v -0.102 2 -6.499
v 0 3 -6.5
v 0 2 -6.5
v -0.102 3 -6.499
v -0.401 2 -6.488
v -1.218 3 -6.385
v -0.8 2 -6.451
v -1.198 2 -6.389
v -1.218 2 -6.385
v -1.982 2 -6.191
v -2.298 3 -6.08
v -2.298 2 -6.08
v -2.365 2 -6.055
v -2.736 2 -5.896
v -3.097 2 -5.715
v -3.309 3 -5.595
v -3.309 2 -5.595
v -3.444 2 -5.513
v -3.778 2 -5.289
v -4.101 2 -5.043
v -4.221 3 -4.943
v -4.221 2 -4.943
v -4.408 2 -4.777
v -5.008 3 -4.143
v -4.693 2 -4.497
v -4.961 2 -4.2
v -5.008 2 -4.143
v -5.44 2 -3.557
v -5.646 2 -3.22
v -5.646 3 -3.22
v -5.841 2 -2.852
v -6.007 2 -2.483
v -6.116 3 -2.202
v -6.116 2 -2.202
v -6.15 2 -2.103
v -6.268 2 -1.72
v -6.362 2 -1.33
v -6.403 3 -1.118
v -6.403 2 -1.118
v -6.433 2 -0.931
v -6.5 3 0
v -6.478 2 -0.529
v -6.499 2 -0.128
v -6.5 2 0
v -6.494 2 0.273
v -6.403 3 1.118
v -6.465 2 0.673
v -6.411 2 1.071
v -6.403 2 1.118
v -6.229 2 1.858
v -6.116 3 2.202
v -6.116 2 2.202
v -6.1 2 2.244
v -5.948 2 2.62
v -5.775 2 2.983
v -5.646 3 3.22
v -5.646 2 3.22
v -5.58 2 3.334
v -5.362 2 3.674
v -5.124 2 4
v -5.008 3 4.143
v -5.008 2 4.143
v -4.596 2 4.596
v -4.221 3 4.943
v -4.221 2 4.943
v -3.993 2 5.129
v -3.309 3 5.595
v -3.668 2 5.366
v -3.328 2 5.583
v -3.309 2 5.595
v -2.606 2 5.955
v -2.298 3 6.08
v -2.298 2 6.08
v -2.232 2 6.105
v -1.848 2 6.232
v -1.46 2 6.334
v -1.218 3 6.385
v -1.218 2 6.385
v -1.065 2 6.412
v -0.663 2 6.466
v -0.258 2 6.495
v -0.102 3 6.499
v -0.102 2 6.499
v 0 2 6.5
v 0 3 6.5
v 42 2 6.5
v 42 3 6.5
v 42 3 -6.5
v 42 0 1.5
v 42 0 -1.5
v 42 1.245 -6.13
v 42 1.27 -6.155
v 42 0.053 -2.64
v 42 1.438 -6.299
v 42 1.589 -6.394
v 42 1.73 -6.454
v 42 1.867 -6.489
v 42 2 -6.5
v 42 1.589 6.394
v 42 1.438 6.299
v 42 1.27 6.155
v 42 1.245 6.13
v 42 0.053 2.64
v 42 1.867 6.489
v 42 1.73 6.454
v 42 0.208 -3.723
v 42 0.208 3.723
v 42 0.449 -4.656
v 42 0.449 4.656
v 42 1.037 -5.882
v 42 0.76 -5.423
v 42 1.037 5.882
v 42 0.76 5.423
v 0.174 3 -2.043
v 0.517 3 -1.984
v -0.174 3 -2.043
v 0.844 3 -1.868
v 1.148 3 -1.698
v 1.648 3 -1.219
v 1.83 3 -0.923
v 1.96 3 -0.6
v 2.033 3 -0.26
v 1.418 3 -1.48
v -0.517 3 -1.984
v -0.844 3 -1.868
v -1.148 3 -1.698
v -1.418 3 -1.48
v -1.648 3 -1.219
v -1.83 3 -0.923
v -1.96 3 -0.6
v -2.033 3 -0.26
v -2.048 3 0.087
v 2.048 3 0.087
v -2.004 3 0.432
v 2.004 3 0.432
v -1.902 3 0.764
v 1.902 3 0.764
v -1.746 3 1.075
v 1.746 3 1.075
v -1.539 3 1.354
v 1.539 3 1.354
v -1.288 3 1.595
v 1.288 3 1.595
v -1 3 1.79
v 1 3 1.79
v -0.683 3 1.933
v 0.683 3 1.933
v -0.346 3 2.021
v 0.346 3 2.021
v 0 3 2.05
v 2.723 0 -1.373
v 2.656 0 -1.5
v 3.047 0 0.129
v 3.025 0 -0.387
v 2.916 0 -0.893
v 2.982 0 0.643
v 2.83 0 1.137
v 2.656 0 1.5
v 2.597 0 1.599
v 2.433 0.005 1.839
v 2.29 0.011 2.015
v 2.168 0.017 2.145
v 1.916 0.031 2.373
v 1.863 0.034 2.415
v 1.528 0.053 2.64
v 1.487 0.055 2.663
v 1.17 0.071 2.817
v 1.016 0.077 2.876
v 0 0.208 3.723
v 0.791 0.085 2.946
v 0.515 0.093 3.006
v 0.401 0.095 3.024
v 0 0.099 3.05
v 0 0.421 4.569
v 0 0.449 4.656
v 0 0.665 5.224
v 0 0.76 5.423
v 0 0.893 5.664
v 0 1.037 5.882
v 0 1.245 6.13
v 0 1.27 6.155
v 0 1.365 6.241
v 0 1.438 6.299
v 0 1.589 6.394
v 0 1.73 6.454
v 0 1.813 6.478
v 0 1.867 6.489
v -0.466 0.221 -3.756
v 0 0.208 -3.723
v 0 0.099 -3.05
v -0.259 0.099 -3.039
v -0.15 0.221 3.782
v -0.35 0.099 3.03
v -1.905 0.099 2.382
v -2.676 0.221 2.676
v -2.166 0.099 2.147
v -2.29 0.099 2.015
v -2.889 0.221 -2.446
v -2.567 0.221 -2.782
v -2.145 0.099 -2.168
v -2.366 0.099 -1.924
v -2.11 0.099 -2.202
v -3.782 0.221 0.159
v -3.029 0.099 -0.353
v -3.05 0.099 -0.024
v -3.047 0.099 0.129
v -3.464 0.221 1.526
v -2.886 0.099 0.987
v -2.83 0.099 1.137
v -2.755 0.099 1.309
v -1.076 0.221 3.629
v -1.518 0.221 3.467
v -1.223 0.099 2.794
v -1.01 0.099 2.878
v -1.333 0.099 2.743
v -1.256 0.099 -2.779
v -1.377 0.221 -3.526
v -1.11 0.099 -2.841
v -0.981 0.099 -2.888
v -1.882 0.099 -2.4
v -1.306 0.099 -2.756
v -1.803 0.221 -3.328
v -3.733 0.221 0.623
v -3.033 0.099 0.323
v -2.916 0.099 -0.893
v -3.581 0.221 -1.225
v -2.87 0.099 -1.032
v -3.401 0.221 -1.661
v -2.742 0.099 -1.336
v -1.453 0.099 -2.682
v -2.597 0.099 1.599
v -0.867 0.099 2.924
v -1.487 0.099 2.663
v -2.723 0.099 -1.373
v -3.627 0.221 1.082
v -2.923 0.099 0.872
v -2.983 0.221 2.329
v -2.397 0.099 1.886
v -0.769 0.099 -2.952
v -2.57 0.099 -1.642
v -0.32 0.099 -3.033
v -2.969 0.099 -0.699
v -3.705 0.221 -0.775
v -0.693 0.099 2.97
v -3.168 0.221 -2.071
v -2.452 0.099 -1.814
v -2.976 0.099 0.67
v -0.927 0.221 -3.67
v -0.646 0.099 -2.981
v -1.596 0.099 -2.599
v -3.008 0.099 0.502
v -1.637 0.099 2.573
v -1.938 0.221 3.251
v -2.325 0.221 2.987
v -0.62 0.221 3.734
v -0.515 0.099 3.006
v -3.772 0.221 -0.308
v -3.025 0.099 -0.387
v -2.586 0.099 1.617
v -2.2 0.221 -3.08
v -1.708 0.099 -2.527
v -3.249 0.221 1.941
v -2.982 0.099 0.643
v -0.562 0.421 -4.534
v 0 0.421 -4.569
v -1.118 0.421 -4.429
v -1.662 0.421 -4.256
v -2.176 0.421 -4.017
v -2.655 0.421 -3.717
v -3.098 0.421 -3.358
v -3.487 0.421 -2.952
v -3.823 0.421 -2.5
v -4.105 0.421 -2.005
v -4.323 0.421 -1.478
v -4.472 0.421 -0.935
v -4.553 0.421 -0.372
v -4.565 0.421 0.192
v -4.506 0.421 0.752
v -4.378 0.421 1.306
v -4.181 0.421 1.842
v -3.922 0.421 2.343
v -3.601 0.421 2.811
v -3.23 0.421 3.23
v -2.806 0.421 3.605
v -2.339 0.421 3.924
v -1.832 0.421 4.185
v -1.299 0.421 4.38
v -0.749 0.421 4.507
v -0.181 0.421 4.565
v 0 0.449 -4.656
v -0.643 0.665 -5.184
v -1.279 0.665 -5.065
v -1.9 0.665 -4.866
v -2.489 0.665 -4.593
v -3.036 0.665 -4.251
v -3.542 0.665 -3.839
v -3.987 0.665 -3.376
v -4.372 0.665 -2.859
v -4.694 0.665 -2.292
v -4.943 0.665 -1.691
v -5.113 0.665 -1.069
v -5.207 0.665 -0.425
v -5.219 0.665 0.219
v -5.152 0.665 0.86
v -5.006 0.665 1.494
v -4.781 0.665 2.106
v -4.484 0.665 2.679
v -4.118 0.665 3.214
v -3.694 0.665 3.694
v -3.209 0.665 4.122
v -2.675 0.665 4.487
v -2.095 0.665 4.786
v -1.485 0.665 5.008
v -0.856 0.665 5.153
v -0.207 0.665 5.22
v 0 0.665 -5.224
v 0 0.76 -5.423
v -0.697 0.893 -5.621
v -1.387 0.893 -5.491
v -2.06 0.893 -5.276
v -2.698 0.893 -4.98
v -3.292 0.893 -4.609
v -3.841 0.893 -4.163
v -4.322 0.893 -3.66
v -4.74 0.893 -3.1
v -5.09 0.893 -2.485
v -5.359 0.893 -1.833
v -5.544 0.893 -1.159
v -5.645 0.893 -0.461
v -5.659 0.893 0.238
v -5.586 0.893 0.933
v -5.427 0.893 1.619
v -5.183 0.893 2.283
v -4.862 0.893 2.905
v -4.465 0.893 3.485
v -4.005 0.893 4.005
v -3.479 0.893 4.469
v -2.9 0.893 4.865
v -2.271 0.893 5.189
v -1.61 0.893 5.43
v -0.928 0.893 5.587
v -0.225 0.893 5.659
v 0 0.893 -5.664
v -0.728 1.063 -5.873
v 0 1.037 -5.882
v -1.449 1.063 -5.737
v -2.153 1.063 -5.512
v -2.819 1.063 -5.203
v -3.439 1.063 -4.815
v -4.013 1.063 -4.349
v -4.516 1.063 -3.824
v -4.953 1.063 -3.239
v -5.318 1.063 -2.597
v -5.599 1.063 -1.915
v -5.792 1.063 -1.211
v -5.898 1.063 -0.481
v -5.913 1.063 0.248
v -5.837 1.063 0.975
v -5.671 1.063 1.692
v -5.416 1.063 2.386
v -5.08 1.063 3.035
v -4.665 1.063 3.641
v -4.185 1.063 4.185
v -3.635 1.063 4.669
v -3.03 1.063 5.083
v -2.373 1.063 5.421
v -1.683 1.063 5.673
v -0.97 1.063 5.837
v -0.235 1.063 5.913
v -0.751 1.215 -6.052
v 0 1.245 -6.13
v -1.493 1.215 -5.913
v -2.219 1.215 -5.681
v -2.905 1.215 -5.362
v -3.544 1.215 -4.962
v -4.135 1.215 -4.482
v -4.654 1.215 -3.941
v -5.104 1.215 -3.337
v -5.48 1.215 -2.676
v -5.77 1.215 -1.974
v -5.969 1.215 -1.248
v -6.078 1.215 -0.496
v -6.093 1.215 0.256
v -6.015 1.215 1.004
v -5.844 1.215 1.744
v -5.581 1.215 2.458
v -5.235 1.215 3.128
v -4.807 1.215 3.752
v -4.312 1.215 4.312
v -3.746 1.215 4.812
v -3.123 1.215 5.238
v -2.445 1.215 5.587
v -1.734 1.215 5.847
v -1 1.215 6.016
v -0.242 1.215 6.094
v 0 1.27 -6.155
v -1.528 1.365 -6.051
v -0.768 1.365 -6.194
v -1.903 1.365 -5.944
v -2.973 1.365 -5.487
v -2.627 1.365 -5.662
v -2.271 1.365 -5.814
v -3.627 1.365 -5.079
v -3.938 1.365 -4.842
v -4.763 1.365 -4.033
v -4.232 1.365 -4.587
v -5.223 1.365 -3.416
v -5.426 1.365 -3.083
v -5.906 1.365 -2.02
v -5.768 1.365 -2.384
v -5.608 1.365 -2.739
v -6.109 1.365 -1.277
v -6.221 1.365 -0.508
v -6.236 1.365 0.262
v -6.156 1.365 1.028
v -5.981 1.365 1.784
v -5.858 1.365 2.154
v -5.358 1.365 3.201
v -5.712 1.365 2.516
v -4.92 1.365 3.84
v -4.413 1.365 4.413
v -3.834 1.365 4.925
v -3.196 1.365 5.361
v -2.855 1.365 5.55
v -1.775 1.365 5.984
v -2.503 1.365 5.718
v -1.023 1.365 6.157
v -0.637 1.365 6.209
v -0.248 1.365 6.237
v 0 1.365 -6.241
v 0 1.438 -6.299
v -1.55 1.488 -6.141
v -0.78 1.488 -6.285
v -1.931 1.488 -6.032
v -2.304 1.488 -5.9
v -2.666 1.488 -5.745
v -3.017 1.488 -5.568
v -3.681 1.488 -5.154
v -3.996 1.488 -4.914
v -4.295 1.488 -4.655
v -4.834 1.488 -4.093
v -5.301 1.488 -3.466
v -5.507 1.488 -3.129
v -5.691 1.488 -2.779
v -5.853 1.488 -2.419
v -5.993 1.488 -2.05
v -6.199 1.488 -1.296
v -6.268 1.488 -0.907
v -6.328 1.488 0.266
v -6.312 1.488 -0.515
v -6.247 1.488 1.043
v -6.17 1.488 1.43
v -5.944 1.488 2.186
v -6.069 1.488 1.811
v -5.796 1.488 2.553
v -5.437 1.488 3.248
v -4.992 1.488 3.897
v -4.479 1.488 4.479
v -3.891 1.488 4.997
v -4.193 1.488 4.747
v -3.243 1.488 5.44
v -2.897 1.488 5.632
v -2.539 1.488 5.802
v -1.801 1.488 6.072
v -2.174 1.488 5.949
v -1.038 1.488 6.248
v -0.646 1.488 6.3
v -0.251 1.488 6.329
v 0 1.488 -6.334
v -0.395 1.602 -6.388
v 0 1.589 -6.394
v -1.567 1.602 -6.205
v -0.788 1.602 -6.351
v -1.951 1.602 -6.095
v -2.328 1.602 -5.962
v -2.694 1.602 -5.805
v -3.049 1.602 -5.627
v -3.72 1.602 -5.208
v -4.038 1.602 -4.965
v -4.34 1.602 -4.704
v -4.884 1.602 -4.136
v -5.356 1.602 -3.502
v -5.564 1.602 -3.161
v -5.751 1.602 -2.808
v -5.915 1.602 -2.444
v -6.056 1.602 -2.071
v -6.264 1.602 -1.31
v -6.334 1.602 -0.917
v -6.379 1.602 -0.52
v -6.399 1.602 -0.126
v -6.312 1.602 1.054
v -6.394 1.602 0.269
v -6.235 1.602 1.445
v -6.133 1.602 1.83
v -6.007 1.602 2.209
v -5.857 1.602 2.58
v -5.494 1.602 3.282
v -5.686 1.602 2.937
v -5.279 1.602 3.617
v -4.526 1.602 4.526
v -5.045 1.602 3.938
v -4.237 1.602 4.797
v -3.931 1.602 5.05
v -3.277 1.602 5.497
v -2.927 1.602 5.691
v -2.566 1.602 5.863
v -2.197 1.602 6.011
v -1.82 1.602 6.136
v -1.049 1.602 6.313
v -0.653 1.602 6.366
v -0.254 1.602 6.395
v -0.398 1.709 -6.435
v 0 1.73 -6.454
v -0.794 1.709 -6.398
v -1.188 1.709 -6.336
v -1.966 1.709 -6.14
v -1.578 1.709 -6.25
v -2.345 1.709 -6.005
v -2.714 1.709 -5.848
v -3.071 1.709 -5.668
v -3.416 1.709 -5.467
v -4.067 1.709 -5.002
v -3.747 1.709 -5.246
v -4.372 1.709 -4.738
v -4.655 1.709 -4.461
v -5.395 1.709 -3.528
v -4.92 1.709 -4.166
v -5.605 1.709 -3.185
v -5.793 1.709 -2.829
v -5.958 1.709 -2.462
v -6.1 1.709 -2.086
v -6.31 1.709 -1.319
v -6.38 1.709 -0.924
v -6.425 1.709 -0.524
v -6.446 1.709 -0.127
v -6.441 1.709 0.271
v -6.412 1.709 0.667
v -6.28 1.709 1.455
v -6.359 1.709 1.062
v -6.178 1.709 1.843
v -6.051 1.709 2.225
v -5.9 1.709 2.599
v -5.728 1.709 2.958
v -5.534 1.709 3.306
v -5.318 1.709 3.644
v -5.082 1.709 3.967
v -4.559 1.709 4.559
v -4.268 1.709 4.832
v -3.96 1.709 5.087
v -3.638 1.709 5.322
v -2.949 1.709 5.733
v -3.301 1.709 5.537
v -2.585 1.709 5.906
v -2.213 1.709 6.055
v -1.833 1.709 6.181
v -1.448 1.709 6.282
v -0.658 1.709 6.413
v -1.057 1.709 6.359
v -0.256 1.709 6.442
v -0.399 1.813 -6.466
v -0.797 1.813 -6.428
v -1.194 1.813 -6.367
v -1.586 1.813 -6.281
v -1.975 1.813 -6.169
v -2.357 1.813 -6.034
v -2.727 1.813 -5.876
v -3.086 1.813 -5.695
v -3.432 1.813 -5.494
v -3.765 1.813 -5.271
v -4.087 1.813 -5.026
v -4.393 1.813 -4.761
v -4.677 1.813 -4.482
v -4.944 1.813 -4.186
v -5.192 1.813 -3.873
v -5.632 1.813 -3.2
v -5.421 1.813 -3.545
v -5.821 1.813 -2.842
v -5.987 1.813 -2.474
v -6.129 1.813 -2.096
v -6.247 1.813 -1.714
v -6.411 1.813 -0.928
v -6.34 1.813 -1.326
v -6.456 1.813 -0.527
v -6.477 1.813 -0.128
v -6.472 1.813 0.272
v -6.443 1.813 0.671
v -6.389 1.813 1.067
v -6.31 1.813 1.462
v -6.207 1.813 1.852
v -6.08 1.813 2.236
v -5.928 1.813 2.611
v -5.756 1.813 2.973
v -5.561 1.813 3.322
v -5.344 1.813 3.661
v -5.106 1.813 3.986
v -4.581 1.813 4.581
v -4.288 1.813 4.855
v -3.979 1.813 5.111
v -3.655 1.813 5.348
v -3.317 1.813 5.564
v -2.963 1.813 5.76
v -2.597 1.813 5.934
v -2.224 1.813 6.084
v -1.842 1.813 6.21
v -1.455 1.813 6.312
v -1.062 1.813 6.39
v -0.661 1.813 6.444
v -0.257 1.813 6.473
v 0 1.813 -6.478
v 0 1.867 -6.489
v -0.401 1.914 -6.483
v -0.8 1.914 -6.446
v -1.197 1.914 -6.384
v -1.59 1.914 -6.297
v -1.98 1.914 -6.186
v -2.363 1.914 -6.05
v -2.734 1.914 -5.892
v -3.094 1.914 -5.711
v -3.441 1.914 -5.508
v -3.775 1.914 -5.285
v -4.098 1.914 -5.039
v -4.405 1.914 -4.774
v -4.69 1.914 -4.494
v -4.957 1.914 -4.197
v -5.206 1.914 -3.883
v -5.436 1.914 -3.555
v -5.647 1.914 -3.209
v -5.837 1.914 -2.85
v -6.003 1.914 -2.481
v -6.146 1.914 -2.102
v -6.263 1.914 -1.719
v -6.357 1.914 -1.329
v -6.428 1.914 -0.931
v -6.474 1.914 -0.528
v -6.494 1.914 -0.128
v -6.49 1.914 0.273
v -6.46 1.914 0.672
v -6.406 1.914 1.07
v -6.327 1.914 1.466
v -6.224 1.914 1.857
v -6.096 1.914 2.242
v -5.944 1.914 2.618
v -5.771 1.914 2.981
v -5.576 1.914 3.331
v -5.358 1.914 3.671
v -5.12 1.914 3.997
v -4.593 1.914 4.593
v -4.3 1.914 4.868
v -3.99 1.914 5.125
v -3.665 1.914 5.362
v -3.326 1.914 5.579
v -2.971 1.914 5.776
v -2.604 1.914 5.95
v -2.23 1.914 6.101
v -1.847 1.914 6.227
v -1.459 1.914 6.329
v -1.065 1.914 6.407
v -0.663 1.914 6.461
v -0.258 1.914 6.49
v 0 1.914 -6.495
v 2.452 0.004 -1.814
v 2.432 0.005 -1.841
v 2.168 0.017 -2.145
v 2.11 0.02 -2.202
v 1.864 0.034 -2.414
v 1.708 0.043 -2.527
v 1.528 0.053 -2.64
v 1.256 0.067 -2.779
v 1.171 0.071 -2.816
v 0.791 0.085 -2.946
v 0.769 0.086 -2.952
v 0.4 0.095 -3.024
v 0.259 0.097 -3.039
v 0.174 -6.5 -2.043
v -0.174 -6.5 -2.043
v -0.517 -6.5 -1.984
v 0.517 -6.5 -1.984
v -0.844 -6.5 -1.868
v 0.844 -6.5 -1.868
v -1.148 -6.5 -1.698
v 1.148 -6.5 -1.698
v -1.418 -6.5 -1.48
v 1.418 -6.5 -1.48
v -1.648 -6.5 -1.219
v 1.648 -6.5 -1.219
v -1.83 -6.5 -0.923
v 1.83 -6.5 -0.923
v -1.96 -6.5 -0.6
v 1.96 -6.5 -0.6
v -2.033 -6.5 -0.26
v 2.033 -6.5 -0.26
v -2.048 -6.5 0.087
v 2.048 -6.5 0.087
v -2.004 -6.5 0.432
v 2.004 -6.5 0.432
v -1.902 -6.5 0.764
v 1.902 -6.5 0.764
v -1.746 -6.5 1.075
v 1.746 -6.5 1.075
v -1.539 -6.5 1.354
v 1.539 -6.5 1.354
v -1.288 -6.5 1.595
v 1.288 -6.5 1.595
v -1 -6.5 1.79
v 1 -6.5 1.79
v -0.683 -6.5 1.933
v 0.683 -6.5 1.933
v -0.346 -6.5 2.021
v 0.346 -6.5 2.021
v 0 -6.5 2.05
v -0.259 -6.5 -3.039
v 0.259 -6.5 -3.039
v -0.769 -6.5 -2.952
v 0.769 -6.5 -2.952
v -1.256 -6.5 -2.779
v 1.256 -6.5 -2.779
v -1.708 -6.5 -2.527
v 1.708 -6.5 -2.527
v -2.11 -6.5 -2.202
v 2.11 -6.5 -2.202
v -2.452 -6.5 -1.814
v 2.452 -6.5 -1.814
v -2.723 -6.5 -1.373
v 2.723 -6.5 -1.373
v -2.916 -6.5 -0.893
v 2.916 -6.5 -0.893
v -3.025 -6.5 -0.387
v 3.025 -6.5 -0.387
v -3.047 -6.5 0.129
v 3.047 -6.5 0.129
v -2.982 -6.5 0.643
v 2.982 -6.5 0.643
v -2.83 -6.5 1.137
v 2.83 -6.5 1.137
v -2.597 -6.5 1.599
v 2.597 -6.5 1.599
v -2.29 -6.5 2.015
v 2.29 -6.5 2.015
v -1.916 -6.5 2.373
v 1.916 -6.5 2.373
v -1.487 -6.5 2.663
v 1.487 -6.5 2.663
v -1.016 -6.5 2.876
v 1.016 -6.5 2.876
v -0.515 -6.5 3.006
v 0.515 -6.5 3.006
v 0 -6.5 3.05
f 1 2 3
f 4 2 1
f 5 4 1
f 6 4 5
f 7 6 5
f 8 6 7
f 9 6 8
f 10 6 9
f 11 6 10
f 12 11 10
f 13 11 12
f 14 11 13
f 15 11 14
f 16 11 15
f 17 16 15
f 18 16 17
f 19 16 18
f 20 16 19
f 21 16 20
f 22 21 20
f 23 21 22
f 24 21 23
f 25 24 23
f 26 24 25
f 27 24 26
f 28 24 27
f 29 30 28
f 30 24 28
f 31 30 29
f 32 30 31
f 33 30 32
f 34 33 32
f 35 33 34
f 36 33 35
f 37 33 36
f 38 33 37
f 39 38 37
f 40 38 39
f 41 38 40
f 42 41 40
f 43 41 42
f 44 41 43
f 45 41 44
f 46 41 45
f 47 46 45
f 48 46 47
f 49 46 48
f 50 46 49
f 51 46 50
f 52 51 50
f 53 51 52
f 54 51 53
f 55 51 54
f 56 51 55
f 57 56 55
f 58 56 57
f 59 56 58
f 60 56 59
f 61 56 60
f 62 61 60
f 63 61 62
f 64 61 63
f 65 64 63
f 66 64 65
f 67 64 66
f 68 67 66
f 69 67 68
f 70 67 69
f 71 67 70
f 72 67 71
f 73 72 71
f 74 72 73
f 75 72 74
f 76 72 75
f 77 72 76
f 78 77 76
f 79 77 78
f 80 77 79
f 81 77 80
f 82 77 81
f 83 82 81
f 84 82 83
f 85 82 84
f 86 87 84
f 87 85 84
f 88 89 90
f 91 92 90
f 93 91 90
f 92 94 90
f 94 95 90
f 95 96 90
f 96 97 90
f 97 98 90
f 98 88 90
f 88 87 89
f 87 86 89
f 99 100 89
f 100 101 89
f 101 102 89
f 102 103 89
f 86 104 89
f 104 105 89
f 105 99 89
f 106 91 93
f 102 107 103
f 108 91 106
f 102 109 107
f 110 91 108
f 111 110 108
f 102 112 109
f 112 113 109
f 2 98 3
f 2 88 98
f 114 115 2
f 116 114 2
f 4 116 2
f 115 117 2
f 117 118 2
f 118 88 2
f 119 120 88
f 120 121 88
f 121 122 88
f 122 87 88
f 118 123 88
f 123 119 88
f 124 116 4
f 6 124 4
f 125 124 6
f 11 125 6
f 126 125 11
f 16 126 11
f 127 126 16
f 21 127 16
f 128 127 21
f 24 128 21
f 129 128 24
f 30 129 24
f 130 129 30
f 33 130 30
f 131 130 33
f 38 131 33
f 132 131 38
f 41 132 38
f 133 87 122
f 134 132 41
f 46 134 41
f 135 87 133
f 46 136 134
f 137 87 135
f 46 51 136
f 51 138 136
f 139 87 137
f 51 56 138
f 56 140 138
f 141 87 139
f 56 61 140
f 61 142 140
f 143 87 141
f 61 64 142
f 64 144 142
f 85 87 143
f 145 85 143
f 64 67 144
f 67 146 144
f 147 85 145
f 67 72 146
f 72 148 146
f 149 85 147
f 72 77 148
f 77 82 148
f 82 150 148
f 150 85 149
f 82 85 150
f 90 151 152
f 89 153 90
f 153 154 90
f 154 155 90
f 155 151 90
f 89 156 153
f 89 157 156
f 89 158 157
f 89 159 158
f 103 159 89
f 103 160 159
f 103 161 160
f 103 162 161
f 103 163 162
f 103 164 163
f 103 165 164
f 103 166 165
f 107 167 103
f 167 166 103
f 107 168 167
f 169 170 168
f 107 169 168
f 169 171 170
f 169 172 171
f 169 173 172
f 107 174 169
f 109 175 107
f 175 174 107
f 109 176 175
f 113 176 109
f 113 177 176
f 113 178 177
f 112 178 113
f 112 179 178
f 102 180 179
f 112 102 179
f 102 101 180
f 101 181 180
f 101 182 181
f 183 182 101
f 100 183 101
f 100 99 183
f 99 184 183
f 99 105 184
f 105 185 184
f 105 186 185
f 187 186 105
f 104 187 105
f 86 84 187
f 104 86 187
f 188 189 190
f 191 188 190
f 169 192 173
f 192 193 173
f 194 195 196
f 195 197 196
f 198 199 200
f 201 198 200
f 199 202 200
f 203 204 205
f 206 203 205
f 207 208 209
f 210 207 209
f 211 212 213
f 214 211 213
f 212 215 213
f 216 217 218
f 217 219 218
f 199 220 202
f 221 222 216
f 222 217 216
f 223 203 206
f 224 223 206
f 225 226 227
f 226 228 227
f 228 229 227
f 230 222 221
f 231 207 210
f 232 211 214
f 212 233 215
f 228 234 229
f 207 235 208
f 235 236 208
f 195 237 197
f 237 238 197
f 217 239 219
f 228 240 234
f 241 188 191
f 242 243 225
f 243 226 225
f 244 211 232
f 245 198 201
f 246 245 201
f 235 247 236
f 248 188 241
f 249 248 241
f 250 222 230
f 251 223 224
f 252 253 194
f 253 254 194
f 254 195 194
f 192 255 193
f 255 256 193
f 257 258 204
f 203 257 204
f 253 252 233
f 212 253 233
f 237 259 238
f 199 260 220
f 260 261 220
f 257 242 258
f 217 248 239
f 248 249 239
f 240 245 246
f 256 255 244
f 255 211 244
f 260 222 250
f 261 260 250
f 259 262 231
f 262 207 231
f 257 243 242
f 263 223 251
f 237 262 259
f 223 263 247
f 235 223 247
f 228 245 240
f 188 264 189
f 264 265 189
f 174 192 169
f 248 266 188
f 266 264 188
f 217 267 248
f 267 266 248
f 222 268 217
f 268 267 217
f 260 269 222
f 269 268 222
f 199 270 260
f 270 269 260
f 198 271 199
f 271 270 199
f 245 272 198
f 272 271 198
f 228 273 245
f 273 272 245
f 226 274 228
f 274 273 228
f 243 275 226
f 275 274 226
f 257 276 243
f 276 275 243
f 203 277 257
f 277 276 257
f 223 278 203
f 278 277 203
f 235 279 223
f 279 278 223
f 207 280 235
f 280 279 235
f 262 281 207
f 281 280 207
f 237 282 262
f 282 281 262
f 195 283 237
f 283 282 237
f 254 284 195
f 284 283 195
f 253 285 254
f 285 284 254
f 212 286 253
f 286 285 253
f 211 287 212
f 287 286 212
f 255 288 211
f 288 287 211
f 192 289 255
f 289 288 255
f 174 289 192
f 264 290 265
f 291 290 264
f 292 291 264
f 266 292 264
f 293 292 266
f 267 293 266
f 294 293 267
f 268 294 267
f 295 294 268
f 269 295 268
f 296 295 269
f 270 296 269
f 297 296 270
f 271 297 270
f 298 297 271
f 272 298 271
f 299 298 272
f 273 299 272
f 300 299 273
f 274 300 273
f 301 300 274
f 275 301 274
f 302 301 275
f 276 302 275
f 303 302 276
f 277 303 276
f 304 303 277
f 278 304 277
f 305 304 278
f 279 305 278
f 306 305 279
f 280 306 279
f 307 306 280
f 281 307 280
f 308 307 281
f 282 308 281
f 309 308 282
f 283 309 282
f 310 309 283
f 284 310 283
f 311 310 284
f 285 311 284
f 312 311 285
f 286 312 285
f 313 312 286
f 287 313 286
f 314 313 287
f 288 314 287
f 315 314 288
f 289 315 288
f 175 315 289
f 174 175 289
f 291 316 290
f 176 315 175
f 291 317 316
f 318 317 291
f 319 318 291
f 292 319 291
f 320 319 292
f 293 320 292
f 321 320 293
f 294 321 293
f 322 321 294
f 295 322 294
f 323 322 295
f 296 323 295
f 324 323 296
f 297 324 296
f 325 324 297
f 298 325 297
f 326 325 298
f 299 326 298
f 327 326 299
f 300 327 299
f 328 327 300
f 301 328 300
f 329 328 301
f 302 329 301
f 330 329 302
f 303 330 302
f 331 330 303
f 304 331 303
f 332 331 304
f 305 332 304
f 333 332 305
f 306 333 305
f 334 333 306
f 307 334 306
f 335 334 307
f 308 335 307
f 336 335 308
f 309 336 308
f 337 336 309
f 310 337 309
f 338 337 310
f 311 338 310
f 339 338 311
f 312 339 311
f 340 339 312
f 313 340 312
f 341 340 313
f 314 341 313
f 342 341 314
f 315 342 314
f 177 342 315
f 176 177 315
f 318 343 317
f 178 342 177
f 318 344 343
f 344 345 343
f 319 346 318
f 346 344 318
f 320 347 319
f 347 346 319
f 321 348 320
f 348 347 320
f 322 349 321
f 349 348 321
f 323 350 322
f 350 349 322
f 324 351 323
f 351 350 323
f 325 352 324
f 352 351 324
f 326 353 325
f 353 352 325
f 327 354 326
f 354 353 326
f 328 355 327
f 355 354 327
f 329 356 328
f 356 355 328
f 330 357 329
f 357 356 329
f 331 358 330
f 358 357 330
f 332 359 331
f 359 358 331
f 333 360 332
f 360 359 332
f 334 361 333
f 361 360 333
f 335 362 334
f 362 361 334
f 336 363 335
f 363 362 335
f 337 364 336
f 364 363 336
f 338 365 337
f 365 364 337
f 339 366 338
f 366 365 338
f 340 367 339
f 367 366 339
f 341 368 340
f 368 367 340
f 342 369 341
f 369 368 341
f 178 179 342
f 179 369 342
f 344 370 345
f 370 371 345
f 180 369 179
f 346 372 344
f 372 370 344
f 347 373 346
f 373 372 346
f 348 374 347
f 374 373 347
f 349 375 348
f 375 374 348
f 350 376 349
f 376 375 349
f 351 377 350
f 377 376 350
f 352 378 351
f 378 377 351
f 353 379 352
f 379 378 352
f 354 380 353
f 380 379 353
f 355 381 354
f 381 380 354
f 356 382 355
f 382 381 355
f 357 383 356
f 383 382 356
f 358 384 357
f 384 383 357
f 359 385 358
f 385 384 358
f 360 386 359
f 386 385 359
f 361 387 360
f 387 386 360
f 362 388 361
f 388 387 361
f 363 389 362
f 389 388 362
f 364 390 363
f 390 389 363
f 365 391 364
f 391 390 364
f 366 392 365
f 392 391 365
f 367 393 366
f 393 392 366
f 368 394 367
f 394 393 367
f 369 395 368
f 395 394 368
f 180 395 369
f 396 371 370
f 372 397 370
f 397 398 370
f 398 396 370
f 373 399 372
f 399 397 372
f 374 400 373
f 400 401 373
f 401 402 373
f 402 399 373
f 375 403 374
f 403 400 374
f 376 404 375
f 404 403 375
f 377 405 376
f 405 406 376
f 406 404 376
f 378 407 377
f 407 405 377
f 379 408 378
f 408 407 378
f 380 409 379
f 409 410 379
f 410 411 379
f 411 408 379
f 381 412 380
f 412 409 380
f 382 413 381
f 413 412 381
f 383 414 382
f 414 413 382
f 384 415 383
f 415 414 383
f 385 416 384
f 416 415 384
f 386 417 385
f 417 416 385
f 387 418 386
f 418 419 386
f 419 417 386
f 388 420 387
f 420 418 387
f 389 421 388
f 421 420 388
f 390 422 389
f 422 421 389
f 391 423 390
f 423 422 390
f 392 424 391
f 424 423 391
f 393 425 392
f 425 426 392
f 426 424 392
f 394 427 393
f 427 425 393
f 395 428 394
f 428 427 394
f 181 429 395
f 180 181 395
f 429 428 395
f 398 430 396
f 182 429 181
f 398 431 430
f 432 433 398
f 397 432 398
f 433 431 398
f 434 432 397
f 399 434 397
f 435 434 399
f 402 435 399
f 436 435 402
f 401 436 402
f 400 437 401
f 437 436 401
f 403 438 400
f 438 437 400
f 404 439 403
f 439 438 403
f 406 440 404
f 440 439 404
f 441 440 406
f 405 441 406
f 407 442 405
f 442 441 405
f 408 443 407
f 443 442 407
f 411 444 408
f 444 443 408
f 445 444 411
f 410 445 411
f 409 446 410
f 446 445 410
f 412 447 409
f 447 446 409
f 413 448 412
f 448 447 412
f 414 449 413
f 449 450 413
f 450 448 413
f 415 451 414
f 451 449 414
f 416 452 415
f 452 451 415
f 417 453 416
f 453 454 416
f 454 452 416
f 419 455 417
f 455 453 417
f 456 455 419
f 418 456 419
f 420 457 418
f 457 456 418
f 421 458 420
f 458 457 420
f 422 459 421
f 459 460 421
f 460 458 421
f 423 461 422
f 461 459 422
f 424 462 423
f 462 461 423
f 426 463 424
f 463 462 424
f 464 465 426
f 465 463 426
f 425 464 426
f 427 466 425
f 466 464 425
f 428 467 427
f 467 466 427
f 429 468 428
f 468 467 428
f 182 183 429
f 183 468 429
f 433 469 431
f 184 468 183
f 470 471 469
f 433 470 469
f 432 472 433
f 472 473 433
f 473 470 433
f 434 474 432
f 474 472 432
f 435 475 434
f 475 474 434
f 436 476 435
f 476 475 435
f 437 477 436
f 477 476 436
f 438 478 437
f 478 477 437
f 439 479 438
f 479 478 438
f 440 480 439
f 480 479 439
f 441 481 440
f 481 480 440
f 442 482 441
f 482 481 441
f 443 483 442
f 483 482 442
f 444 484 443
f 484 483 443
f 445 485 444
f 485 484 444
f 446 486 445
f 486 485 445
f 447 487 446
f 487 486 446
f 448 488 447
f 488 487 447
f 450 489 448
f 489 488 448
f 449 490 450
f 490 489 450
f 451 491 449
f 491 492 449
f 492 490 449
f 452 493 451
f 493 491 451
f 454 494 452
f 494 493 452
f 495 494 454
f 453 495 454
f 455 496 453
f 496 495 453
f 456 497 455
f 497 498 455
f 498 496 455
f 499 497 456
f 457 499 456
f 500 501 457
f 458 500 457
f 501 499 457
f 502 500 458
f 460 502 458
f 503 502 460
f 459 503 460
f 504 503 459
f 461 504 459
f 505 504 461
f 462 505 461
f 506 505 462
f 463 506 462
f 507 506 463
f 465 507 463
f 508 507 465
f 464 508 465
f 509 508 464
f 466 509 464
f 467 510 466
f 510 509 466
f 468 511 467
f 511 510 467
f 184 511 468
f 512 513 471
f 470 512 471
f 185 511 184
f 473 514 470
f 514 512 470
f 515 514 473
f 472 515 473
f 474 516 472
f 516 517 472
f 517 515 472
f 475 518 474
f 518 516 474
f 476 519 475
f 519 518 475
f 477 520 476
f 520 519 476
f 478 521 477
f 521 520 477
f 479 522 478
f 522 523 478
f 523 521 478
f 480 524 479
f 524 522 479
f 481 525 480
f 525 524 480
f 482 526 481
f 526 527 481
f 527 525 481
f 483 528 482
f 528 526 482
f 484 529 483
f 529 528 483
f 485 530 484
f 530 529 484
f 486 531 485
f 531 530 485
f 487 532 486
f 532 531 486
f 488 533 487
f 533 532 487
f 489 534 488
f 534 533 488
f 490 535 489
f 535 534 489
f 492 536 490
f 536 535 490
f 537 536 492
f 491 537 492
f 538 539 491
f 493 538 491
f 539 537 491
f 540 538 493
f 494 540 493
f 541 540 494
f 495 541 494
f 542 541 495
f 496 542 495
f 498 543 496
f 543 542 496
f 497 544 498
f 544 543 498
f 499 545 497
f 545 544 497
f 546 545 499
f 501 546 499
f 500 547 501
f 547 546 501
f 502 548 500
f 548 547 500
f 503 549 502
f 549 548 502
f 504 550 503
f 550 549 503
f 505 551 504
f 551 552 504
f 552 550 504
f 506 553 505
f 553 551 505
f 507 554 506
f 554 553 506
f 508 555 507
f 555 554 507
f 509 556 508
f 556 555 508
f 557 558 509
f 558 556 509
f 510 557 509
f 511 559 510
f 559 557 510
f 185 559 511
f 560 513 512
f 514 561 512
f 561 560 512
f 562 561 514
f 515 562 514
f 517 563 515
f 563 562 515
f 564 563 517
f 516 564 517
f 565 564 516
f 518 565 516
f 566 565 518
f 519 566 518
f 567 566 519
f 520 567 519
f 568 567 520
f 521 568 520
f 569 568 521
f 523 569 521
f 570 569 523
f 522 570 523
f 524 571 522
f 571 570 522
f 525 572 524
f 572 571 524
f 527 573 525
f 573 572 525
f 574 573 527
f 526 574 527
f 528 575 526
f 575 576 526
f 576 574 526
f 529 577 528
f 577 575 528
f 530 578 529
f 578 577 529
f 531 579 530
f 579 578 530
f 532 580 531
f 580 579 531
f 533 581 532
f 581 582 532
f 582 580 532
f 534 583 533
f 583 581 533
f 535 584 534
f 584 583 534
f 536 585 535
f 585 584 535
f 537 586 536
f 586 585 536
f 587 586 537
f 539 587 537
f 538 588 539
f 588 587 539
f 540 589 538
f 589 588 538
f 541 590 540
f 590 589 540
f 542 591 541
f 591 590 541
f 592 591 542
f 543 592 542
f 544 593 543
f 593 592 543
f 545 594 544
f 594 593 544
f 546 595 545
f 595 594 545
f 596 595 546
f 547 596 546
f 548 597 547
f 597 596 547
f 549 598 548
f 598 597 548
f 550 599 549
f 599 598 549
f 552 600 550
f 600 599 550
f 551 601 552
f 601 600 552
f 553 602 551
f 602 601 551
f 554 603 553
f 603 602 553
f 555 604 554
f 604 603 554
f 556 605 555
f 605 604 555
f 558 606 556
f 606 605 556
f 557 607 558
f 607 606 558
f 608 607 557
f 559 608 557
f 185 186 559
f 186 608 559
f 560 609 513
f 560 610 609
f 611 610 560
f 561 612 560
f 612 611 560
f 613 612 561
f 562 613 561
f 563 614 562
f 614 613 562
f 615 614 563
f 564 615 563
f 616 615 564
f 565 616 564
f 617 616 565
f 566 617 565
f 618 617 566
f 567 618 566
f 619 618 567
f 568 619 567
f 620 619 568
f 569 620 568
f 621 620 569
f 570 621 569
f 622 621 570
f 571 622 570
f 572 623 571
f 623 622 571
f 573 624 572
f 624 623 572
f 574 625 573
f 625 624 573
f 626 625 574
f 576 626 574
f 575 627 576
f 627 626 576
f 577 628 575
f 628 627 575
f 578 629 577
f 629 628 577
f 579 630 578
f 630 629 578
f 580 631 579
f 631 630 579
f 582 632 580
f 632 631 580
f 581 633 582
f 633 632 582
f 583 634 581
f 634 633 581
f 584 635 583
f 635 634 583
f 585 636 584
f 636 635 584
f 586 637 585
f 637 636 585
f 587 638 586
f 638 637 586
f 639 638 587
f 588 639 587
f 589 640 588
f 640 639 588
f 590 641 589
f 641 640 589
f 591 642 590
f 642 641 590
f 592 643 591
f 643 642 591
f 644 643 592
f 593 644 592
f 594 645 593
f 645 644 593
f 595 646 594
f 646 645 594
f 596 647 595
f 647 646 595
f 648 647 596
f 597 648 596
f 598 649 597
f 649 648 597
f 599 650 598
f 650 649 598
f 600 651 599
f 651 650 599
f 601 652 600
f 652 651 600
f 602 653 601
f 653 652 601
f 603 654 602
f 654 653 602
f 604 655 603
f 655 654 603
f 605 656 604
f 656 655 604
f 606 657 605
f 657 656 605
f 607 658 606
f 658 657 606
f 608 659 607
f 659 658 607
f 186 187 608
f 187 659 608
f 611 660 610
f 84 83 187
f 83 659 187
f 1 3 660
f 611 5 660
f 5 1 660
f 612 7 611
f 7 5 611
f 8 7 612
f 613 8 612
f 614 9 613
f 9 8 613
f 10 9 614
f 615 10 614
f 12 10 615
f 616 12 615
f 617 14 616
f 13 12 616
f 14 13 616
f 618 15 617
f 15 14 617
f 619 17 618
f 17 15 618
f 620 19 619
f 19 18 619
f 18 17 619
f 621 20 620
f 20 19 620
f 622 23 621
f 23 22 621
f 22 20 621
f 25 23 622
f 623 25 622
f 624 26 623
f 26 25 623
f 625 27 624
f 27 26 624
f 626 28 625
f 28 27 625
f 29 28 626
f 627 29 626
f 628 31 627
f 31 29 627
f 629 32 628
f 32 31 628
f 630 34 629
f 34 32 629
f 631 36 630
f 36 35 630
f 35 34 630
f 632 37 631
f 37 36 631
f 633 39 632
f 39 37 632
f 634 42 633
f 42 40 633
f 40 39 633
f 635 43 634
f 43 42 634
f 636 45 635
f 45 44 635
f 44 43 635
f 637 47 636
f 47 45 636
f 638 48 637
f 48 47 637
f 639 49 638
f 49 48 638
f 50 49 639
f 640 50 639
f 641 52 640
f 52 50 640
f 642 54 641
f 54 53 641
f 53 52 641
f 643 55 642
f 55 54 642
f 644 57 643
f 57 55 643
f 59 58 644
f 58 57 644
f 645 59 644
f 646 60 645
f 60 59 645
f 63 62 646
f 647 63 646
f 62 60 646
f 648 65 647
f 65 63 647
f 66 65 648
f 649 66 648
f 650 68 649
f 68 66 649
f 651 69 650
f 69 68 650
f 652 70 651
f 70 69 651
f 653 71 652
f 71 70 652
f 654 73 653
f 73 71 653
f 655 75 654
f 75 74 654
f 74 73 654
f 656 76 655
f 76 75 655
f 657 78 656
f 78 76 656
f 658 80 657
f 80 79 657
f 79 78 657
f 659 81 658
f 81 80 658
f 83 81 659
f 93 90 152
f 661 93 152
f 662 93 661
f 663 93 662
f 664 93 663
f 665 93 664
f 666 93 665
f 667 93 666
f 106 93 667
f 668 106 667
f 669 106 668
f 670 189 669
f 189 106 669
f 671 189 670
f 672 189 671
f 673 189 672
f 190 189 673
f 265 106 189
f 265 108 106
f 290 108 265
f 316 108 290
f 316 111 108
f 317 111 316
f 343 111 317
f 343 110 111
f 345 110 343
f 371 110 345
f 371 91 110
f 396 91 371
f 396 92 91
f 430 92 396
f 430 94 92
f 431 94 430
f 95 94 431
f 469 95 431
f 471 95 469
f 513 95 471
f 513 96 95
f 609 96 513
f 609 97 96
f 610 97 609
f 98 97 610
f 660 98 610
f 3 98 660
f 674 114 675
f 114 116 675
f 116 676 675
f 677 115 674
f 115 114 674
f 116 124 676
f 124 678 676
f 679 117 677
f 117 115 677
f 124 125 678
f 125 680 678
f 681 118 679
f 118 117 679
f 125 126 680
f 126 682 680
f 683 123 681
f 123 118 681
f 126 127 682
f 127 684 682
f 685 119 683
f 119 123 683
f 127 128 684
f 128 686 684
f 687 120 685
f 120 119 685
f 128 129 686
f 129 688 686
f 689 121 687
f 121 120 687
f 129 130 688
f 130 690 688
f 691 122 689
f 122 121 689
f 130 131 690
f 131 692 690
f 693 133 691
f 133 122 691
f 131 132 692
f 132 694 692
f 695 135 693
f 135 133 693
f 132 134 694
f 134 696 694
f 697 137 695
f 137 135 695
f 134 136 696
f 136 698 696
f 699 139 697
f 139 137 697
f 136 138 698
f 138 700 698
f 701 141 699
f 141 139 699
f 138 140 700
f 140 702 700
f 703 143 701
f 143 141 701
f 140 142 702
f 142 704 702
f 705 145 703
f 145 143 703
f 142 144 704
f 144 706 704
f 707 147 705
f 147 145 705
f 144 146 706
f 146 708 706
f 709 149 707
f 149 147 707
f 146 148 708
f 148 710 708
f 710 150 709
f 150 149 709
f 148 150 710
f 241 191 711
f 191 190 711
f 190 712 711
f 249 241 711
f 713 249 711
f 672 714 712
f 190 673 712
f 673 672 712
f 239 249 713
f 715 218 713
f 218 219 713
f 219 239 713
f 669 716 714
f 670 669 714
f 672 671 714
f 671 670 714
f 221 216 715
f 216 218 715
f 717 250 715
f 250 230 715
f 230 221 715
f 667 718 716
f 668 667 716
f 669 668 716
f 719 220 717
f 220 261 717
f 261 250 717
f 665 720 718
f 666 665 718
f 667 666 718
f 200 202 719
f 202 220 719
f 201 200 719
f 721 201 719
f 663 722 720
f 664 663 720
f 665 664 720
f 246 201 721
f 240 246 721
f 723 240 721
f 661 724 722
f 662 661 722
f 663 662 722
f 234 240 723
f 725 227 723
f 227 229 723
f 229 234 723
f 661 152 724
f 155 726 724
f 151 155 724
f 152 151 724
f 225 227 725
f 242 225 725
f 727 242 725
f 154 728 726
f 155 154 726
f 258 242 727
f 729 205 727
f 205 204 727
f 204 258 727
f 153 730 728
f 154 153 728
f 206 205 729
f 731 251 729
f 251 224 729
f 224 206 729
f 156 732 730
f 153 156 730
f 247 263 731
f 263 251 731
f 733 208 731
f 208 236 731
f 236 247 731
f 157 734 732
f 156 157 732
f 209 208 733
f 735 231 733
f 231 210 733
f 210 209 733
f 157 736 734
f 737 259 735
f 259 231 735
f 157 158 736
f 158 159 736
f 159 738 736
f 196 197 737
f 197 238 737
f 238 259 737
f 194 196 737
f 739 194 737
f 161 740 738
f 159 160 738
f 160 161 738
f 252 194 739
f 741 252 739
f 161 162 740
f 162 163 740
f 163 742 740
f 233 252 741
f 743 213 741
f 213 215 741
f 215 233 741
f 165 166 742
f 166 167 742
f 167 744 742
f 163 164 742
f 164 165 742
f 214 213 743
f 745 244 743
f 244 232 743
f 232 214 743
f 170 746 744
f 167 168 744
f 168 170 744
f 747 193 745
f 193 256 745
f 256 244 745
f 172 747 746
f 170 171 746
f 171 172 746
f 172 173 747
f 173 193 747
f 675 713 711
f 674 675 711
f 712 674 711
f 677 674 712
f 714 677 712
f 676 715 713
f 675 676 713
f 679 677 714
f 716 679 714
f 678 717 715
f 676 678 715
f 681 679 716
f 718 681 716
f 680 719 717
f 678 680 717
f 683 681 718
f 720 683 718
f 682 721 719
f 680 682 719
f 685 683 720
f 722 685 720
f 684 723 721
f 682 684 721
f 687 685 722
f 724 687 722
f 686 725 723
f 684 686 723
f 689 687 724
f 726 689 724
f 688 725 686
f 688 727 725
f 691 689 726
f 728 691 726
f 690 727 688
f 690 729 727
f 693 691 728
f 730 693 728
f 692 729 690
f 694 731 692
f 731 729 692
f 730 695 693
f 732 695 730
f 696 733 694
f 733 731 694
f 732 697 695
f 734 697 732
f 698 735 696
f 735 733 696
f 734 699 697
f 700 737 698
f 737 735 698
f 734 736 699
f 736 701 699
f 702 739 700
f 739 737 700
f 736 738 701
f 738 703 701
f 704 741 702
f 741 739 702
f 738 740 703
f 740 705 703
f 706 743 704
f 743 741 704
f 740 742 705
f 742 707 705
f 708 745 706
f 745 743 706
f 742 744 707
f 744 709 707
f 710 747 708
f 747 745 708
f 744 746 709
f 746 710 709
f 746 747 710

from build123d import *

# Parameters (mm, degrees)
BOSS_EXTRUDE1_DEPTH = 3
FILLET1_SIZE        = 2
FILLET1_SIZE_2      = 5
SKETCH2_R           = 3.05
SKETCH2_R_2         = 2.05
BOSS_EXTRUDE3_DEPTH = 9.5
SKETCH3_R           = 2.05
CUT_EXTRUDE1_DEPTH  = 44.548823309


with BuildPart() as part:
    # Sketch1 → Boss-Extrude1 (new body)
    with BuildSketch(Plane(origin=(0, 0, 0), x_dir=(1, 0, 0), z_dir=(0, 1, 0))):
        with BuildLine():
            Line((0, 6.5), (42, 6.5))
            Line((42, 6.5), (42, -6.5))
            Line((42, -6.5), (0, -6.5))
            ThreePointArc((0, -6.5), (-6.5, 0), (0, 6.5))
        make_face()
    extrude(amount=BOSS_EXTRUDE1_DEPTH)

    # Fillet1
    # an asymmetric fillet: 5, 2 mm, written as the material it takes off along each edge
    with BuildSketch(Plane(origin=(0, 0, -6.5), x_dir=(0, 1, 0), z_dir=(1, 0, 0)), Plane(origin=(54.5, 0, 6.5), x_dir=(0, 1, 0), z_dir=(-1, 0, 0))) as fillet1_piece_1:
        with BuildLine():
            Bezier((FILLET1_SIZE, 0), (0, 0), (0, FILLET1_SIZE_2), weights=[1, 0.707106781, 1])
            Line((0, FILLET1_SIZE_2), (0, 0))
            Line((0, 0), (FILLET1_SIZE, 0))
        make_face()
    extrude(amount=54.5, mode=Mode.SUBTRACT)
    with BuildSketch(Plane(origin=(0, 0, 0), x_dir=(0, 0, 1), z_dir=(1, 0, 0))) as fillet1_piece_2:
        with BuildLine():
            Bezier((6.5, -FILLET1_SIZE), (6.5, 0), (6.5 - FILLET1_SIZE_2, 0), weights=[1, 0.707106781, 1])
            Line((6.5 - FILLET1_SIZE_2, 0), (6.5, 0))
            Line((6.5, 0), (6.5, -FILLET1_SIZE))
        make_face()
    revolve(axis=Axis((0, 0, 0), (0, -1, 0)), revolution_arc=180, mode=Mode.SUBTRACT)

    # Sketch2 → Boss-Extrude3 (add)
    with BuildSketch(Plane(origin=(0, 3, 0), x_dir=(1, 0, 0), z_dir=(0, 1, 0))):
        with Locations(Location((0, 0, 0), (0, 0, 270))):
            Circle(SKETCH2_R)
        with Locations(Location((0, 0, 0), (0, 0, 270))):
            Circle(SKETCH2_R_2, mode=Mode.SUBTRACT)
    extrude(amount=-BOSS_EXTRUDE3_DEPTH)

    # Sketch3 → Cut-Extrude1 (cut, through all)
    with BuildSketch(Plane(origin=(0, 3, 0), x_dir=(1, 0, 0), z_dir=(0, 1, 0))):
        with Locations(Location((0, 0, 0), (0, 0, 270))):
            Circle(SKETCH3_R)
    extrude(amount=-CUT_EXTRUDE1_DEPTH, mode=Mode.SUBTRACT)


solid = part.part
